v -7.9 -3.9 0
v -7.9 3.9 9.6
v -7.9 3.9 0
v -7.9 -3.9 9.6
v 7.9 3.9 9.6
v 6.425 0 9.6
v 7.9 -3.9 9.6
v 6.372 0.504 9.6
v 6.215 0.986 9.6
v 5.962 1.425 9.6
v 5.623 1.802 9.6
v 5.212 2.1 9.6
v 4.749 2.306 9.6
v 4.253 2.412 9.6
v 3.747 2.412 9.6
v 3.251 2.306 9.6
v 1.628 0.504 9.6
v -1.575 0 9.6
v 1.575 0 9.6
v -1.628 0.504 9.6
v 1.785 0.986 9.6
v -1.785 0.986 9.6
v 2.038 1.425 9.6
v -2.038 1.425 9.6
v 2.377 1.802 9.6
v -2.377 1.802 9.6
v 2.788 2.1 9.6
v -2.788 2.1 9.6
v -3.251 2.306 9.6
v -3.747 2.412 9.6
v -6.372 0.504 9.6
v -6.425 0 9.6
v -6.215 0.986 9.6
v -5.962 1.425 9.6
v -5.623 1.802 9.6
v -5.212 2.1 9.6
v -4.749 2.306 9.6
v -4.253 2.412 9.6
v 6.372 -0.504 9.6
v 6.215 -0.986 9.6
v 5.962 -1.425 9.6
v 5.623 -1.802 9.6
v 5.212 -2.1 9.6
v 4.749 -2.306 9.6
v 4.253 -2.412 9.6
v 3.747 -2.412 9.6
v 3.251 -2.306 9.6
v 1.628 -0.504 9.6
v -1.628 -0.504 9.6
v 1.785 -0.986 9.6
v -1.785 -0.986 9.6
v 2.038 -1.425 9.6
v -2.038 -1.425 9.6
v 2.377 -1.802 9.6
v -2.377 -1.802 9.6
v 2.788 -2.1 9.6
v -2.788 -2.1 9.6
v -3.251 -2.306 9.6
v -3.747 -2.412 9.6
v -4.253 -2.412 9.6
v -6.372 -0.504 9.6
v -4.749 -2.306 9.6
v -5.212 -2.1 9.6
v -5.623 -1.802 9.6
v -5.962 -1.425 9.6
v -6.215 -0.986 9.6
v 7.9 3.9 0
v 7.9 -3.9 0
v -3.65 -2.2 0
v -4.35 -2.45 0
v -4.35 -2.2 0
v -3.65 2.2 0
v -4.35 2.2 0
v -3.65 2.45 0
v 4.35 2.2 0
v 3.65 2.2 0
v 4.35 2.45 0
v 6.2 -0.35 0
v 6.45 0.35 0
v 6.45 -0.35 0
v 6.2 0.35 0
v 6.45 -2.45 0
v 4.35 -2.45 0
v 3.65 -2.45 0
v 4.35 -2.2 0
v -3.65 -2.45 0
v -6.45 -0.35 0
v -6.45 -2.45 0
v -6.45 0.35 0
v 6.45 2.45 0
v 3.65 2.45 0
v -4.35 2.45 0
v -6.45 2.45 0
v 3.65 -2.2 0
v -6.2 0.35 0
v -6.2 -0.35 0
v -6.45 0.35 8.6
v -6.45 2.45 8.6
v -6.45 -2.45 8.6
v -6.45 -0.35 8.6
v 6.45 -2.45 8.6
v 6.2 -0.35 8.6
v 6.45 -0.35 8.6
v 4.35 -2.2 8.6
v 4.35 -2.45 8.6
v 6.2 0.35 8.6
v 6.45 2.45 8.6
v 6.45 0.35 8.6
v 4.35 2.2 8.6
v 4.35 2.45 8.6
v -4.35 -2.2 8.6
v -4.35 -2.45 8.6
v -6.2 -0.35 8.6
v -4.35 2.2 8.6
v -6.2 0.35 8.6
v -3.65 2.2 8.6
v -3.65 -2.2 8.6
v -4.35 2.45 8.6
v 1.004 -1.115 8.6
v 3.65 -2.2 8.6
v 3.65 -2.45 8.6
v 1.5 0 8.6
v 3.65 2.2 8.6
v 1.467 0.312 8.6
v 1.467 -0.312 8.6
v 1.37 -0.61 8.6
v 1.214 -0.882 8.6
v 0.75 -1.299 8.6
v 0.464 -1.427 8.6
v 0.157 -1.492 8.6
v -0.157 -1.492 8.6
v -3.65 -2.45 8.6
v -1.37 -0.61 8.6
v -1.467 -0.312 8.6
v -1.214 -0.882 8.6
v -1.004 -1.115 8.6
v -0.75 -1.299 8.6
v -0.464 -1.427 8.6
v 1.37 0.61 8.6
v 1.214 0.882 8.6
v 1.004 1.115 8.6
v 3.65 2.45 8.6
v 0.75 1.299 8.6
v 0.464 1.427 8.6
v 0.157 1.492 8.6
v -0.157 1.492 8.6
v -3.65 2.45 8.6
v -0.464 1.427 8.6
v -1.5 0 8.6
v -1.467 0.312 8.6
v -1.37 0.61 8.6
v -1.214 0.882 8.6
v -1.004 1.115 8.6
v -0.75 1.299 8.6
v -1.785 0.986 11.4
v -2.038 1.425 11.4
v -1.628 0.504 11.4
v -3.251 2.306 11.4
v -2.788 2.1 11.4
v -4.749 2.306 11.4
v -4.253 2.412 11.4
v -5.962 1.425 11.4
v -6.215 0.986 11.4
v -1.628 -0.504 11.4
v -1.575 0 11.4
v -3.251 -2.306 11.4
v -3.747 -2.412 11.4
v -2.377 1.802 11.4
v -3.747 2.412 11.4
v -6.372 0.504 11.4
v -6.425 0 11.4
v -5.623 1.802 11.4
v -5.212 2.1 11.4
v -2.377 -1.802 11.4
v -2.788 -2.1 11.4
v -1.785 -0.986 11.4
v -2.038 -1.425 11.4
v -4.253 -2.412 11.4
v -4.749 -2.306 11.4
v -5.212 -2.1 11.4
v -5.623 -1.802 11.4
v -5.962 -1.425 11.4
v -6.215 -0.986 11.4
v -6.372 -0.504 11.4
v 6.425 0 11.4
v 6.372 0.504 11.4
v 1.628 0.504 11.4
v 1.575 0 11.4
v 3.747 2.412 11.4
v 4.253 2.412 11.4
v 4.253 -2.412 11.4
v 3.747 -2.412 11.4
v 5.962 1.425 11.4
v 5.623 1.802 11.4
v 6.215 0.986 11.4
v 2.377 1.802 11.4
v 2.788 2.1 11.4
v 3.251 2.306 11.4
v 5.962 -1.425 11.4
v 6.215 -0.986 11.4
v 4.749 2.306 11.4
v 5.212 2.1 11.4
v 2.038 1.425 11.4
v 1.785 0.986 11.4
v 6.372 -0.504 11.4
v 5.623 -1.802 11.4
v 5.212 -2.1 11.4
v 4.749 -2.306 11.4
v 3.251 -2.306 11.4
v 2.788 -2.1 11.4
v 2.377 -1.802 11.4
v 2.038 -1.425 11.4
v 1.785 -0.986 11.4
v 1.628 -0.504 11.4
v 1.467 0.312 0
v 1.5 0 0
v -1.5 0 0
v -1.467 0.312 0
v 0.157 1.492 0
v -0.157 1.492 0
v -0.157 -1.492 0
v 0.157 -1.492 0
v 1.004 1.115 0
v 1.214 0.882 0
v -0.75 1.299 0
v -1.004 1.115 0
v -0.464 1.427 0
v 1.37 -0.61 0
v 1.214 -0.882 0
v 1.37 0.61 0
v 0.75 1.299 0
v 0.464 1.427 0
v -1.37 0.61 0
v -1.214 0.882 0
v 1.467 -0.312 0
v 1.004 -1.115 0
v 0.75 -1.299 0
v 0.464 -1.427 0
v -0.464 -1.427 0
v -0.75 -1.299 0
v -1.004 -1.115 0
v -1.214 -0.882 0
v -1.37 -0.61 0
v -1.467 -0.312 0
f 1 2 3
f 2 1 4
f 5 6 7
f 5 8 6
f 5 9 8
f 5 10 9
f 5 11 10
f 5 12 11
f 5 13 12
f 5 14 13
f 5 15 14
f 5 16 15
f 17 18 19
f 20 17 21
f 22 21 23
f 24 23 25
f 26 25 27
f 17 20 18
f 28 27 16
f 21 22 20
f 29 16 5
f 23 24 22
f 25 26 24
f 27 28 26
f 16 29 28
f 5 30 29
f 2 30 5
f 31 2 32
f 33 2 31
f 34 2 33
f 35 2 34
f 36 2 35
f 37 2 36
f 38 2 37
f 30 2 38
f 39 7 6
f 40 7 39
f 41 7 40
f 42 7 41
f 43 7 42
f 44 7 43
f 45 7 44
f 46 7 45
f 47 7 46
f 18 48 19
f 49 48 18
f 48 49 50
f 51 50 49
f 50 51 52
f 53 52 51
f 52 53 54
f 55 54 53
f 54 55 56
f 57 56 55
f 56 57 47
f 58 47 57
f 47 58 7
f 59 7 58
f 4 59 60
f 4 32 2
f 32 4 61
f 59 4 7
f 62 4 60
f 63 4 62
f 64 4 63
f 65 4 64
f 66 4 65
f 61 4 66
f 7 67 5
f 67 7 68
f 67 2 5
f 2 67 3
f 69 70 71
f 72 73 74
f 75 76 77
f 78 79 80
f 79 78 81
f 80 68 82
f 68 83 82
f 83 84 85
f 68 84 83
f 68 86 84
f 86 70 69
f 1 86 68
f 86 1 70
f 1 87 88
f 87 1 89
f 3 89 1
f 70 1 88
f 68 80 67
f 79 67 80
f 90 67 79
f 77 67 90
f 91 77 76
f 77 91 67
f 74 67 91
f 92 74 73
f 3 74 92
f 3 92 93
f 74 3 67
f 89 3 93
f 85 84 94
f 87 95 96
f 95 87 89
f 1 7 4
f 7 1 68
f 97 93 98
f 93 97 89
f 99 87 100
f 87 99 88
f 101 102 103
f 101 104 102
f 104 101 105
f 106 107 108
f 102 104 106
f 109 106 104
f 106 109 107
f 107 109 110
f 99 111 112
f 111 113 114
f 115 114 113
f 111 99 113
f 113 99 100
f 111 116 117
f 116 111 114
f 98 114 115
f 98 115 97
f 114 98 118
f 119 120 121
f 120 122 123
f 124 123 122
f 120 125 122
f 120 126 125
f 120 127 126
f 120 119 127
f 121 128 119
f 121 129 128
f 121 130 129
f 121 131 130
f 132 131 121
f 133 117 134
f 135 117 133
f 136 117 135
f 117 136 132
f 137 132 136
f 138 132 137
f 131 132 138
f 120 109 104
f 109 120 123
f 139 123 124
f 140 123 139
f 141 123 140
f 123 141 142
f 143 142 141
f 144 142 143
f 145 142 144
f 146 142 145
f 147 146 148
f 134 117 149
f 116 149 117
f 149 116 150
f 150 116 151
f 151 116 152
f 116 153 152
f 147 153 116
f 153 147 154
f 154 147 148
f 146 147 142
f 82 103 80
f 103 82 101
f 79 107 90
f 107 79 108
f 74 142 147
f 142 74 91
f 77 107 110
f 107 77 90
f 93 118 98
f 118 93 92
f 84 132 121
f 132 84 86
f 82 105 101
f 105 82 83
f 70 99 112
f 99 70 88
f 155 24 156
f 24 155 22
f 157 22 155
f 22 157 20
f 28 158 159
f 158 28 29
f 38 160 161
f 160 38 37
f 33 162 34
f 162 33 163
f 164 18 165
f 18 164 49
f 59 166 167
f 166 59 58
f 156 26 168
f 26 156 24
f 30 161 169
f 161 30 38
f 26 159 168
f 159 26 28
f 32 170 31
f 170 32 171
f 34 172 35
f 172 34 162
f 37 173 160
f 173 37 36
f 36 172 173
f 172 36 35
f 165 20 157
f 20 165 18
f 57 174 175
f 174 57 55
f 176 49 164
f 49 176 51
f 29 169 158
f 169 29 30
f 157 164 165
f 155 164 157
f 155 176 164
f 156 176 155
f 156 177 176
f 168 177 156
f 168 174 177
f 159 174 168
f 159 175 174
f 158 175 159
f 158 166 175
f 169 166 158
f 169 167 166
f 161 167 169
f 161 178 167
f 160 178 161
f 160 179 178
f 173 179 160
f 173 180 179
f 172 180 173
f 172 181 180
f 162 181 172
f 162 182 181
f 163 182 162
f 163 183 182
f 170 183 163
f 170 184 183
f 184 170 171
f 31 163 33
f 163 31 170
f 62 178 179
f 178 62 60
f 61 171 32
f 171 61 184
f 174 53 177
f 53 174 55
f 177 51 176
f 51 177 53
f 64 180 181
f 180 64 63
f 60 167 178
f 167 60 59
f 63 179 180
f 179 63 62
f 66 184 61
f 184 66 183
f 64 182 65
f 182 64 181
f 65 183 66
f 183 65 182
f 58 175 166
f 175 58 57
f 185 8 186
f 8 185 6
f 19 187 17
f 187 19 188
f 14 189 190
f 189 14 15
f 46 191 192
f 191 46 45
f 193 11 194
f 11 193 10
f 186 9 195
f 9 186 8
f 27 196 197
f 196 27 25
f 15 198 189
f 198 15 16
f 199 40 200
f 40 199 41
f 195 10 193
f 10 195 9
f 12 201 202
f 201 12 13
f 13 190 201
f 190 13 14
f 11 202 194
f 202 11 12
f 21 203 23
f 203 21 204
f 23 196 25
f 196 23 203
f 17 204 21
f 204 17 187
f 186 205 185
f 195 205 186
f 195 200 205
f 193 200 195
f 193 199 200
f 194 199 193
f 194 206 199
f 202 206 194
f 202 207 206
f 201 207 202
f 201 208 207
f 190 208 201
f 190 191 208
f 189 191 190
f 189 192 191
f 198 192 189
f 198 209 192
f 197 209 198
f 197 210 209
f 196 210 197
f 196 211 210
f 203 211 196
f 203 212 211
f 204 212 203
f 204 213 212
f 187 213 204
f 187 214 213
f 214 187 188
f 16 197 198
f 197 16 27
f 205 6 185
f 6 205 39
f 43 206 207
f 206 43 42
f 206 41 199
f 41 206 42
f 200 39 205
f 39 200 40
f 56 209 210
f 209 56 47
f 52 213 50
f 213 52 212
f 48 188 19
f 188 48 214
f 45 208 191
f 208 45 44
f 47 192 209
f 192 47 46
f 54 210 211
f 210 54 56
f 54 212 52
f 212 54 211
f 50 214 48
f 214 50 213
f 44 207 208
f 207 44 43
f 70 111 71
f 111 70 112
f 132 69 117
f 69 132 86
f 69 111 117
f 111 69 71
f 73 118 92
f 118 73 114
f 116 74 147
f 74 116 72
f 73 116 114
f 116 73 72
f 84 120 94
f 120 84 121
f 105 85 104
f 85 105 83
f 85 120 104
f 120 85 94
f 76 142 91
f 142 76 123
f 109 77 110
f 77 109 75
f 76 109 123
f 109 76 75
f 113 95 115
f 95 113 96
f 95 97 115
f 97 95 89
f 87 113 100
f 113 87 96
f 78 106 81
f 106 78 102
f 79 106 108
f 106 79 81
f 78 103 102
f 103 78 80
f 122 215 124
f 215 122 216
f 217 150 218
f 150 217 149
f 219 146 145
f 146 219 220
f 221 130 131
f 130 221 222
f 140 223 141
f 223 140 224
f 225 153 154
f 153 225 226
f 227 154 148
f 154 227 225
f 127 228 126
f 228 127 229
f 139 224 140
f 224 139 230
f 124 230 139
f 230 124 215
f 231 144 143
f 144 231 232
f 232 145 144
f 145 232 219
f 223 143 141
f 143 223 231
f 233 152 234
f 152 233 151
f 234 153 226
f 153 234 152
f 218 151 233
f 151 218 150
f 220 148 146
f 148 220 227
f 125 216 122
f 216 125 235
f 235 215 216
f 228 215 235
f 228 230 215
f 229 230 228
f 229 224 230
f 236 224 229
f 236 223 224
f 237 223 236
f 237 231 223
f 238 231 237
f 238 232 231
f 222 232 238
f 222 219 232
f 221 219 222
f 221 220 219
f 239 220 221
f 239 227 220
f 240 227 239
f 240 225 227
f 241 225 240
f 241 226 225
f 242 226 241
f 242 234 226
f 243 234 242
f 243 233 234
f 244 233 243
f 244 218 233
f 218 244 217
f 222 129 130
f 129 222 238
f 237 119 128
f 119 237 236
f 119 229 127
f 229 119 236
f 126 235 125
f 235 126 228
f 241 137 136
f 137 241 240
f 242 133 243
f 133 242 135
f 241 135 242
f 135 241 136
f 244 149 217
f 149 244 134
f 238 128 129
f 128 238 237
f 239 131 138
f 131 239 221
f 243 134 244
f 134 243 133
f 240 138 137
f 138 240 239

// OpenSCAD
/**
 * Derived from http://www.thingiverse.com/thing:5699
 *
 * LEGO®, the LEGO® logo, the Brick, DUPLO®, and MINDSTORMS® are trademarks of the LEGO® Group. ©2012 The LEGO® Group.
 */

/* [General] */

// Width of the block, in studs
block_width = 1;

// Length of the block, in studs
block_length = 2;

// Height of the block. A ratio of "1" is a standard LEGO brick height; a ratio of "1/3" is a standard LEGO plate height; "1/2" is a standard DUPLO plate.
block_height_ratio = 1; // [.33333333333:1/3, .5:1/2, 1:1, 2:2, 3:3, 4:4, 5:5, 6:6, 7:7, 8:8, 9:9, 10:10]

// What type of block should this be? For type-specific options, see the "Wings," "Slopes," "Curves", and "Baseplates" tabs.
block_type = "brick"; // [brick:Brick, tile:Tile, wing:Wing, slope:Slope, curve:Curve, baseplate:Baseplate]

// What brand of block should this be? LEGO for regular LEGO bricks, Duplo for the toddler-focused larger bricks.
block_brand = "lego"; // [lego:LEGO, duplo:DUPLO]

// What stud type do you want? Hollow studs allow rods to be pushed into the stud.
stud_type = "solid"; // [solid:Solid, hollow:Hollow]

// Should the block include round horizontal holes like the Technics LEGO bricks have?
technic_holes = "no"; // [no:No, yes:Yes]

// Should the block include vertical cross-shaped axle holes?
vertical_axle_holes = "no"; // [no:No, yes:Yes]

/* [Wings] */

// What type of wing? Full is suitable for the front of a plane, left/right are for the left/right of a plane.
wing_type = "full"; // [full:Full, left:Left, right:Right]

// The number of studs across the end of the wing. If block_width is odd, this needs to be odd, and the same for even.
wing_end_width = 2;

// The length of the rectangular portion of the wing, in studs.
wing_base_length = 3;

// Should the wing edges be notched to accept studs below?
wing_stud_notches = "yes"; // [yes:Yes, no:No]

/* [Slopes] */

// How many rows of studs should be left before the slope?
slope_stud_rows = 1;

// How much vertical height should be left at the end of the slope? e.g, a value of zero means the slope reaches the bottom of the block. A value of 1 means that for a block with height 2, the slope reaches halfway down the block.
slope_end_height = 0;

/* [Curves] */

// How many rows of studs should be left before the curve?
curve_stud_rows = 5;

// Should the curve be convex or concave?
curve_type = "concave"; // [concave:Concave, convex:Convex]

// How much vertical height should be left at the end of the curve? e.g, a value of zero means the curve reaches the bottom of the block. A value of 1 means that for a block with height 2, the curve reaches halfway down the block.
curve_end_height = 0;

/* [Baseplates] */

// If you want a roadway, how wide should it be (in studs)? A roadway is a smooth (non-studded) section of a baseplate.
roadway_width = 0;

// How long should the roadway be?
roadway_length = 0;

// Where should the roadway start (x-value)? A value of zero puts the roadway at the far left side of the plate.
roadway_x = 0;

// Where should the roadway start (y-value)? A value of zero puts the roadway at the front of the plate.
roadway_y = 0;

/* [SNOT] */

// SNOT means Studs Not On Top -- bricks with alternative stud configurations.
// Put studs on the top and buttom?
dual_sided = "no"; // [no:No, yes:Yes]

// Instead of both sides having studs, both sides can have no studs.
dual_bottom = "no"; // [no:No, yes:Yes]

/* [Printer-Specific] */

// Should extra reinforcement be included to make printing on an FDM printer easier? Ignored for tiles, since they're printed upside-down and don't need the reinforcement. Recommended for block heights less than 1 or for Duplo bricks. 
use_reinforcement = "no"; // [no:No, yes:Yes]

// If your printer prints the blocks correctly except for the stud diameter, use this variable to resize just the studs for your printer. A value of 1.05 will print the studs 105% wider than standard.
stud_rescale = 1;
//stud_rescale = 1.0475 * 1; // Orion Delta, T-Glase
//stud_rescale = 1.022 * 1; // Orion Delta, ABS

// Print tiles upside down.
translate([0, 0, (block_type == "tile" ? block_height_ratio * block_height : 0)]) rotate([0, (block_type == "tile" ? 180 : 0), 0]) {
    block(
        width=block_width,
        length=block_length,
        height=block_height_ratio,
        type=block_type,
        brand=block_brand,
        stud_type=stud_type,
        horizontal_holes=(technic_holes=="yes"),
        vertical_axle_holes=(vertical_axle_holes=="yes"),
        reinforcement=(use_reinforcement=="yes"),
        wing_type=wing_type,
        wing_end_width=wing_end_width,
        wing_base_length=wing_base_length,
        stud_notches=(wing_stud_notches=="yes"),
        slope_stud_rows=slope_stud_rows,
        slope_end_height=slope_end_height,
        curve_stud_rows=curve_stud_rows,
        curve_type=curve_type,
        curve_end_height=curve_end_height,
        roadway_width=roadway_width,
        roadway_length=roadway_length,
        roadway_x=roadway_x,
        roadway_y=roadway_y,
        stud_rescale=stud_rescale,
        dual_sided=(dual_sided=="yes"),
        dual_bottom=(dual_bottom=="yes")
    );
}

module block(
    width=1,
    length=2,
    height=1,
    type="brick",
    brand="lego",
    stud_type="solid",
    horizontal_holes=false,
    vertical_axle_holes=false,
    reinforcement=false,
    wing_type="full",
    wing_end_width=2,
    wing_base_length=2,
    stud_notches=false,
    slope_stud_rows=1,
    slope_end_height=0,
    curve_stud_rows=1,
    curve_type="concave",
    curve_end_height=0,
    roadway_width=0,
    roadway_length=0,
    roadway_x=0,
    roadway_y=0,
    stud_rescale=1,
    dual_sided=false,
    dual_bottom=false
    ) {
    post_wall_thickness = (brand == "lego" ? 0.85 : 1);
    wall_thickness=(brand == "lego" ? 1.45 : 1.5);
    stud_diameter=(brand == "lego" ? 4.85 : 9.35);
    hollow_stud_inner_diameter = (brand == "lego" ? 3.1 : 6.7);
    stud_height=(brand == "lego" ? 1.8 : 4.4);
    stud_spacing=(brand == "lego" ? 8 : 8 * 2);
    block_height=(brand == "lego" ? (type == "baseplate" ? 1.3 : 9.6) : 9.6 * 2);
    pin_diameter=(brand == "lego" ? 3 : 3 * 2);
    post_diameter=(brand == "lego" ? 6.5 : 13.2);
    cylinder_precision=(brand == "lego" ? 0.1 : 0.05);
    reinforcing_width = (brand == "lego" ? 0.7 : 1);

    spline_length = (brand == "lego" ? 0.25 : 1.7);
    spline_thickness = (brand == "lego" ? 0.7 : 1.3);

    horizontal_hole_diameter = (brand == "lego" ? 4.8 : 4.8 * 2);
    horizontal_hole_z_offset = (brand == "lego" ? 5.8 : 5.8 * 2);
    horizontal_hole_bevel_diameter = (brand == "lego" ? 6.2 : 6.2 * 2);
    horizontal_hole_bevel_depth = (brand == "lego" ? 0.9 : 0.9 * 1.5 / 1.2 );

    roof_thickness = (type == "baseplate" || dual_sided ? block_height * height : 1 * 1);

    // Brand-independent measurements.
    axle_spline_width = 2.0;
    axle_diameter = 5 * 1;
    wall_play = 0.1 * 1;
    horizontal_hole_wall_thickness = 1 * 1;

    // Ensure that width is always less than or equal to length.
    real_width = (type == "wing" ? width : min(width, length) );
    real_length = (type == "wing" ? length : max(width, length) );
    real_height = max((type == "baseplate" ? 1 : 1/3), height);

    // Ensure that the wing end width is even if the width is even, odd if odd, and a reasonable value.
    real_wing_end_width = (wing_type == "full"
        ?
        min(real_width - 2, ((real_width % 2 == 0) ? 
            (max(2, (
                wing_end_width % 2 == 0 ?
                (wing_end_width)
                :
                (wing_end_width-1)
            )))
            :
            (max(1, (
                wing_end_width % 2 == 0 ?
                (wing_end_width-1)
                :
                (wing_end_width)
            )))
        ))
        :
        (min(real_width-1, max(1, wing_end_width))) // Half-wing
    );

    // Ensure that the base length is a reasonable value.
    real_wing_base_length = min(real_length-1, max(1, wing_base_length)) + 1; // +1 because the angle starts before the last stud.
        
    // Validate all the rest of the arguments.
    real_slope_end_height = max(0, min(real_height - 1/3, slope_end_height));
    real_slope_stud_rows = min(real_length - 1, slope_stud_rows);
    real_curve_stud_rows = max(0, curve_stud_rows);
    real_curve_type = (curve_type == "convex" ? "convex" : "concave");
    real_curve_end_height = max(0, min(real_height - 1/3, curve_end_height));
    real_horizontal_holes = horizontal_holes && ((type == "baseplate" && real_height >= 8) || real_height >= 1) && !dual_sided;
    real_vertical_axle_holes = vertical_axle_holes && real_width > 1;
    real_reinforcement = reinforcement && type != "baseplate" && type != "tile" && !dual_sided;

    real_roadway_width = max(0, min(roadway_width, real_width));
    real_roadway_length = max(0, min(roadway_length, real_length));
    real_roadway_x = max(0, min(real_length - real_roadway_length, roadway_x));
    real_roadway_y = max(0, min(real_width - real_roadway_width, roadway_y));

    real_stud_notches = stud_notches && !dual_sided;
    real_dual_sided = dual_sided && type != "curve" && type != "slope" && type != "tile";
    real_dual_bottom = dual_bottom && !real_dual_sided && type != "curve" && type != "slope";

    total_studs_width = (stud_diameter * stud_rescale * real_width) + ((real_width - 1) * (stud_spacing - (stud_diameter * stud_rescale)));
    total_studs_length = (stud_diameter * stud_rescale * real_length) + ((real_length - 1) * (stud_spacing - (stud_diameter * stud_rescale)));

    total_posts_width = (post_diameter * (real_width - 1)) + ((real_width - 2) * (stud_spacing - post_diameter));
    total_posts_length = (post_diameter * (real_length - 1)) + ((real_length - 2) * (stud_spacing - post_diameter));

    total_axles_width = (axle_diameter * (real_width - 1)) + ((real_width - 2) * (stud_spacing - axle_diameter));
    total_axles_length = (axle_diameter * (real_length - 1)) + ((real_length - 2) * (stud_spacing - axle_diameter));

    total_pins_width = (pin_diameter * (real_width - 1)) + max(0, ((real_width - 2) * (stud_spacing - pin_diameter)));
    total_pins_length = (pin_diameter * (real_length - 1)) + max(0, ((real_length - 2) * (stud_spacing - pin_diameter)));

    overall_length = (real_length * stud_spacing) - (2 * wall_play);
    overall_width = (real_width * stud_spacing) - (2 * wall_play);

    wing_slope = (wing_type == "full" ?
        ((real_width - (real_wing_end_width + 1)) / 2) / (real_length - (real_wing_base_length - 1))
        :
        (real_width - (real_wing_end_width)) / (real_length - (real_wing_base_length - 1))
    );

   translate([-overall_length/2, -overall_width/2, 0]) // Comment to position at 0,0,0 instead of centered on X and Y.
        union() {
            difference() {
                union() {
                    /**
                     * Include any union()s that should come before the final difference()s.
                     */
                    
                    // The mass of the block.
                    difference() {
                        cube([overall_length, overall_width, real_height * block_height]);
                        translate([wall_thickness,wall_thickness,-roof_thickness]) cube([overall_length-wall_thickness*2,overall_width-wall_thickness*2,block_height*real_height]);
                    }

                    // The studs on top of the block (if it's not a tile).
                    if ( type != "tile" && !real_dual_bottom ) {
                        translate([stud_diameter * stud_rescale / 2, stud_diameter * stud_rescale / 2, 0]) 
                        translate([(overall_length - total_studs_length)/2, (overall_width - total_studs_width)/2, 0]) {
                            for (ycount=[0:real_width-1]) {
                                for (xcount=[0:real_length-1]) {
                                    if (!skip_this_stud(xcount, ycount)) {
                                        translate([xcount*stud_spacing,ycount*stud_spacing,block_height*real_height]) stud();
                                    }
                                }
                            }
                       }
                    }

                    // Interior splines to catch the studs.
                    translate([stud_spacing / 2 - wall_play - (spline_thickness/2), 0, 0]) for (xcount = [0:real_length-1]) {
                        translate([0,wall_thickness,0]) translate([xcount * stud_spacing, 0, 0]) cube([spline_thickness, spline_length, real_height * block_height]);
                        translate([xcount * stud_spacing, overall_width - wall_thickness -  spline_length, 0]) cube([spline_thickness, spline_length, real_height * block_height]);
                    }

                    translate([0, stud_spacing / 2 - wall_play - (spline_thickness/2), 0]) for (ycount = [0:real_width-1]) {
                        translate([wall_thickness,0,0]) translate([0, ycount * stud_spacing, 0]) cube([spline_length, spline_thickness, real_height * block_height]);
                        translate([overall_length - wall_thickness -  spline_length, ycount * stud_spacing, 0]) cube([spline_length, spline_thickness, real_height * block_height]);
                    }

                    if (type != "baseplate" && real_width > 1 && real_length > 1 && !real_dual_sided && roof_thickness < block_height * height) {
                        // Reinforcements and posts
                        translate([post_diameter / 2, post_diameter / 2, 0]) {
                            translate([(overall_length - total_posts_length)/2, (overall_width - total_posts_width)/2, 0]) {
                                union() {
                                    // Posts
                                    for (ycount=[1:real_width-1]) {
                                        for (xcount=[1:real_length-1]) {
                                            translate([(xcount-1)*stud_spacing,(ycount-1)*stud_spacing,0]) post(real_vertical_axle_holes && !skip_this_vertical_axle_hole(xcount, ycount));
                                        }
                                    }

                                    // Reinforcements
                                    if (real_reinforcement) {
                                        difference() {
                                            for (ycount=[1:real_width-1]) {
                                                for (xcount=[1:real_length-1]) {
                                                    translate([(xcount-1)*stud_spacing,(ycount-1)*stud_spacing,0]) reinforcement();
                                                }
                                            }

                                            for (ycount=[1:real_width-1]) {
                                                for (xcount=[1:real_length-1]) {
                                                    translate([(xcount-1)*stud_spacing,(ycount-1)*stud_spacing,-0.5]) cylinder(r=post_diameter/2-0.1, h=real_height*block_height+0.5, $fs=cylinder_precision);
                                                }
                                            }
                                        }
                                    }
                                }
                            }
                        }
                    }

                    if (type != "baseplate" && (real_width == 1 || real_length == 1) && real_width != real_length && !real_dual_sided && roof_thickness < block_height * height) {
                        // Pins
                        if (real_width == 1) {
                            translate([(pin_diameter/2) + (overall_length - total_pins_length) / 2, overall_width/2, 0]) {
                                for (xcount=[1:real_length-1]) {
                                    translate([(xcount-1)*stud_spacing,0,0]) cylinder(r=pin_diameter/2,h=block_height*real_height,$fs=cylinder_precision);
                                }
                            }
                        }
                        else {
                            translate([overall_length/2, (pin_diameter/2) + (overall_width - total_pins_width) / 2, 0]) {
                                for (ycount=[1:real_width-1]) {
                                    translate([0,(ycount-1)*stud_spacing,0]) cylinder(r=pin_diameter/2,h=block_height*real_height,$fs=cylinder_precision);
                                }
                            }
                        }
                    }

                    if (real_horizontal_holes) {
                        // The holes for the horizontal axles.
                        // 1-length bricks have the hole underneath the stud.
                        // >1-length bricks have the holes between the studs.
                        for (height_index = [0 : height - 1]) {
                            translate([horizontal_holes_x_offset(), overall_width, height_index * block_height]) 
                            translate([(overall_length - total_studs_length)/2, 0, 0]) {
                            for (axle_hole_index=[horizontal_hole_start_index() : horizontal_hole_end_index()]) {
                                if (!skip_this_horizontal_hole(axle_hole_index, height_index)) {
                                        translate([axle_hole_index*stud_spacing,0,horizontal_hole_z_offset]) rotate([90, 0, 0])  cylinder(r=horizontal_hole_diameter/2 + horizontal_hole_wall_thickness, h=overall_width,$fs=cylinder_precision);
                                    }
                                }
                            }
                        }
                    }
                }

                
                /**
                 * Include any differences from the basic brick here.
                 */
                
                if (real_vertical_axle_holes) {
                    if (real_width > 1 && real_length > 1) {
                        translate([axle_diameter / 2, axle_diameter / 2, 0]) {
                            translate([(overall_length - total_axles_length)/2, (overall_width - total_axles_width)/2, 0]) {
                                for (ycount = [ 1 : real_width - 1 ]) {
                                    for (xcount = [ 1 : real_length - 1]) {
                                        if (!skip_this_vertical_axle_hole(xcount, ycount)) {
                                            translate([(xcount-1)*stud_spacing,(ycount-1)*stud_spacing,-block_height/2]) axle();
                                        }
                                    }
                                }
                            }
                        }
                    }
                }

                if (type == "wing") {
                    if (wing_type == "full" || wing_type == "right")  {
                        translate([0, 0, -0.5]) linear_extrude(block_height * real_height + stud_height + 1) polygon(points=[
                            [stud_spacing * (real_wing_base_length-1), -0.01],
                            [overall_length + 0.01, -0.01],
                            [overall_length + 0.01, (wing_type == "full" ?
                                (overall_width / 2 - (real_wing_end_width * stud_spacing / 2))
                                :
                                (overall_width - (real_wing_end_width * stud_spacing))
                            )]
                        ]
                        );
                    }
                    if (wing_type == "full" || wing_type == "left")  {
                        translate([0, 0, -0.5]) linear_extrude(block_height * real_height + stud_height + 1) polygon(points=[
                            [stud_spacing * (real_wing_base_length-1), overall_width + 0.01],
                            [overall_length + 0.01, overall_width + 0.01],
                            [overall_length + 0.01, (wing_type == "full" ? overall_width / 2 : 0) + (real_wing_end_width * stud_spacing / (wing_type == "full" ? 2 : 1))]
                        ]
                        );


                    }
                }
                else if (type == "slope") {
                    translate([0, overall_width+0.5, 0]) rotate([90, 0, 0]) linear_extrude(overall_width+1) polygon(points=[
                        [-0.1, (block_height * real_slope_end_height) + stud_height],
                        [min(overall_length, overall_length - (stud_spacing * real_slope_stud_rows) + (wall_play/2)), real_height * block_height - roof_thickness],
                        [min(overall_length, overall_length - (stud_spacing * real_slope_stud_rows) + (wall_play/2)), real_height * block_height + stud_height + 1],
                        [-0.1, real_height * block_height + stud_height + 1]
                    ]);
                }
                else if (type == "curve") {
                    if (real_curve_type == "concave") {
                                            echo(curve_circle_height());
                        difference() {
                            translate([
                                    -curve_circle_length() / 2, // Align the center of the cube with the end of the block.
                                    -0.5, // Center the extra width on the block.
                                    (real_height * block_height) - (curve_circle_height() / 2)  // Align the bottom of the cube with the center of the curve circle.
                                ])
                                cube([curve_circle_length(), overall_width + 1, curve_circle_height()]);

                            translate([
                                    curve_circle_length() / 2,  // Align the end of the curve with the end of the block.
                                    overall_width / 2, // Center it on the block.
                                    (real_height * block_height) - (curve_circle_height() / 2)  // Align the top of the curve with the top of the block.
                                ])
                                rotate([90, 0, 0]) // Rotate sideways
                                translate([0, 0, -overall_width/2]) // Move so the cylinder is z-centered.
                                resize([curve_circle_length(), curve_circle_height(), 0]) // Resize to the approprate scale.
                                cylinder(r=real_height * block_height, h=overall_width, $fs=cylinder_precision);
                        }
                    }
                    else if (real_curve_type == "convex") {
                        union() {
                            translate([0, 0, real_height * block_height]) cube([overall_length - (real_curve_stud_rows * stud_spacing), overall_width, stud_height + .1]);
                            translate([0, 0, block_height * real_height])
                                translate([0, (overall_width+1)/2-.5, 0]) // Center across the end of the block.
                                rotate([90, 0, 0])
                                translate([0, 0, -((overall_width+1)/2)]) // z-center
                                resize([curve_circle_length(), curve_circle_height(), 0]) // Resize to the final dimensions.
                                cylinder(r=block_height * real_height, h=overall_width+1, $fs=cylinder_precision);
                        }
                    }
                }
                else if (type == "baseplate") {
                    // Rounded corners.
                    union() {
                        translate([overall_length, overall_width, 0]) translate([-((stud_spacing / 2) - wall_play), -((stud_spacing / 2) - wall_play), 0]) negative_rounded_corner(r=((stud_spacing / 2) - wall_play), h=real_height * block_height);
                        
                        translate([0, overall_width, 0]) translate([((stud_spacing / 2) - wall_play), -((stud_spacing / 2) - wall_play), 0]) rotate([0, 0, 90]) negative_rounded_corner(r=((stud_spacing / 2) - wall_play), h=real_height * block_height);
                        translate([((stud_spacing / 2) - wall_play), ((stud_spacing / 2) - wall_play), 0]) rotate([0, 0, 180]) negative_rounded_corner(r=((stud_spacing / 2) - wall_play), h=real_height * block_height);
                        translate([overall_length, 0, 0]) translate([-((stud_spacing / 2) - wall_play), ((stud_spacing / 2) - wall_play), 0]) rotate([0, 0, 270]) negative_rounded_corner(r=((stud_spacing / 2) - wall_play), h=real_height * block_height);
                    }
                }

                if (real_horizontal_holes) {
                    // The holes for the horizontal axles.
                    // 1-length bricks have the hole underneath the stud.
                    // >1-length bricks have the holes between the studs.
                    for (height_index = [0 : height - 1]) {
                        translate([horizontal_holes_x_offset(), 0, height_index * block_height]) 
                        translate([(overall_length - total_studs_length)/2, 0, 0]) {
                            for (axle_hole_index=[horizontal_hole_start_index() : horizontal_hole_end_index()]) {
                                if (!skip_this_horizontal_hole(axle_hole_index, height_index)) {
                                    union() {
                                        translate([axle_hole_index*stud_spacing,overall_width,horizontal_hole_z_offset]) rotate([90, 0, 0])  cylinder(r=horizontal_hole_diameter/2, h=overall_width,$fs=cylinder_precision);
    
                                        // Bevels. The +/- 0.1 measurements are here just for nicer previews in OpenSCAD, and could be removed.
                                        translate([axle_hole_index*stud_spacing,horizontal_hole_bevel_depth-0.1,horizontal_hole_z_offset]) rotate([90, 0, 0]) cylinder(r=horizontal_hole_bevel_diameter/2, h=horizontal_hole_bevel_depth+0.1,$fs=cylinder_precision);
                                        translate([axle_hole_index*stud_spacing,overall_width+0.1,horizontal_hole_z_offset]) rotate([90, 0, 0]) cylinder(r=horizontal_hole_bevel_diameter/2, h=horizontal_hole_bevel_depth+0.1,$fs=cylinder_precision);
                                    }
                                }
                            }
                        }
                    }
                }
            }

            
            /**
             * Any final union()s for the brick.
             */
            
            if (type == "wing") {
                difference() {
                    union() {
                        if ( wing_type == "full" || wing_type == "right" ){
                            linear_extrude(block_height * real_height) polygon(points=[
                                [stud_spacing * (real_wing_base_length-1), 0],
                                [overall_length, (wing_type == "full" ? 
                                    ((overall_width / 2) - (real_wing_end_width * stud_spacing / 2))
                                    :
                                    (overall_width - (real_wing_end_width * stud_spacing))
                                )],
                                [overall_length, (wing_type == "full" ? 
                                    ((overall_width / 2) - (real_wing_end_width * stud_spacing / 2))
                                    :
                                    (overall_width - (real_wing_end_width * stud_spacing))
                                ) + wall_thickness],
                                [stud_spacing * (real_wing_base_length-1), wall_thickness]
                            ]);
                        }

                        if (wing_type == "full" || wing_type == "left") {
                            linear_extrude(block_height * real_height) polygon(points=[
                                [stud_spacing * (real_wing_base_length-1), overall_width],
                                [overall_length, (wing_type == "full" ? overall_width / 2 : 0) + (real_wing_end_width * stud_spacing / (wing_type == "full" ? 2 : 1))],
                                [overall_length, (wing_type == "full" ? overall_width / 2 : 0) + (real_wing_end_width * stud_spacing / (wing_type == "full" ? 2 : 1)) - wall_thickness],
                                [stud_spacing * (real_wing_base_length-1), overall_width - wall_thickness]
                            ]);
                        }
                    }

                    if (real_stud_notches) {
                        translate([overall_length/2, overall_width/2, 0])
                            translate([0, 0, -(1/3 * block_height)]) block(
                                width=real_width,
                                length=real_length,
                                height=1/3,
                                brand=brand,
                                stud_type="solid",
                                type="brick",
                                stud_rescale=1.5
                            );
                    }
                }
            }
            else if (type == "slope") {
                translate([0, overall_width, 0]) rotate([90, 0, 0]) linear_extrude(overall_width) polygon(points=[
                    [0, (block_height * real_slope_end_height) + stud_height],
                    [0, (block_height * real_slope_end_height) + stud_height + roof_thickness],
                    [min(overall_length, overall_length - (stud_spacing * real_slope_stud_rows) + (wall_play/2)), real_height * block_height],
                    [min(overall_length, overall_length - (stud_spacing * real_slope_stud_rows) + (wall_play/2)), (real_height * block_height) - roof_thickness]
                ]);
            }
            else if (type == "curve") {
                if (real_curve_type == "concave") {
                    intersection() {
                        translate([
                                -curve_circle_length() / 2, // Align the center of the cube with the end of the block.
                                -0.5, // Center the extra width on the block.
                                (real_height * block_height) - (curve_circle_height() / 2)  // Align the bottom of the cube with the center of the curve circle.
                            ])
                            cube([curve_circle_length(), overall_width + 1, curve_circle_height()]);

                        difference() {   
                            translate([
                                    curve_circle_length() / 2,  // Align the end of the curve with the end of the block.
                                    overall_width / 2, // Center it on the block.
                                    (real_height * block_height) - (curve_circle_height() / 2)  // Align the top of the curve with the top of the block.
                                ])
                                rotate([90, 0, 0]) // Rotate sideways
                                translate([0, 0, -overall_width/2]) // Move so the cylinder is z-centered.
                                resize([curve_circle_length(), curve_circle_height(), 0]) // Resize to the approprate scale.
                                cylinder(r=real_height * block_height, h=overall_width, $fs=cylinder_precision);

                            translate([
                                    curve_circle_length() / 2,  // Align the end of the curve with the end of the block.
                                    overall_width / 2, // Center it on the block.
                                    (real_height * block_height) - (curve_circle_height() / 2) // Align the top of the curve with the top of the block.
                                ])
                                rotate([90, 0, 0]) // Rotate sideways
                                translate([0, 0, -overall_width/2]) // Move so the cylinder is z-centered.
                                resize([curve_circle_length() - (wall_thickness * 2), curve_circle_height() - (wall_thickness * 2), 0]) // Resize to the approprate scale.
                                cylinder(r=real_height * block_height, h=overall_width, $fs=cylinder_precision);
                        }
                    }
                }
                else if (real_curve_type == "convex") {
                    intersection() {
                        translate([
                            0,
                            0,
                            (real_height * block_height) - (curve_circle_height() / 2) - wall_thickness // Align the top of the cube with the top of the block.
                        ])
                            cube([curve_circle_length() / 2, overall_width, curve_circle_height() / 2 + wall_thickness]);

                       translate([0, 0, block_height * real_height])
                            translate([0, overall_width/2, 0]) // Center across the end of the block.
                            rotate([90, 0, 0])
                            translate([0, 0, -overall_width/2]) // z-center
                            difference() {
                                resize([curve_circle_length() + (wall_thickness * 2), curve_circle_height() + (wall_thickness * 2), 0]) // Resize to the final dimensions.
                                cylinder(r=block_height * real_height, h=overall_width, $fs=cylinder_precision);

                                translate([0, 0, -0.5]) // The inner cylinder is just a little taller, for nicer OpenSCAD previews.
                                    resize([curve_circle_length(), curve_circle_height(), 0]) // Resize to the final dimensions.
                                    cylinder(r=block_height * real_height, h=overall_width+1, $fs=cylinder_precision);
                            }
                    }
                }
            }
            
            if (real_dual_sided) {
                translate([overall_length/2, overall_width/2, block_height * height]) mirror([0,0,1]) block(
                    width=real_width,
                    length=real_length,
                    height=real_height,
                    type=type,
                    brand=brand,
                    stud_type=stud_type,
                    horizontal_holes=real_horizontal_holes,
                    vertical_axle_holes=real_vertical_axle_holes,
                    reinforcement=real_reinforcement,
                    wing_type=wing_type,
                    wing_end_width=real_wing_end_width,
                    wing_base_length=real_wing_base_length-1,
                    stud_notches=real_stud_notches,
                    slope_stud_rows=real_slope_stud_rows,
                    slope_end_height=real_slope_end_height,
                    curve_stud_rows=real_curve_stud_rows,
                    curve_type=real_curve_type,
                    curve_end_height=real_curve_end_height,
                    roadway_width=real_roadway_width,
                    roadway_length=real_roadway_length,
                    roadway_x=real_roadway_x,
                    roadway_y=real_roadway_y,
                    stud_rescale=stud_rescale,
                    dual_sided=false
                );
            }

            if (real_dual_bottom) {
                translate([overall_length/2, overall_width/2, block_height * height * 2]) mirror([0,0,1]) block(
                    width=real_width,
                    length=real_length,
                    height=real_height,
                    type="tile",
                    brand=brand,
                    stud_type=stud_type,
                    horizontal_holes=real_horizontal_holes,
                    vertical_axle_holes=real_vertical_axle_holes,
                    reinforcement=real_reinforcement,
                    wing_type=wing_type,
                    wing_end_width=real_wing_end_width,
                    wing_base_length=real_wing_base_length-1,
                    stud_notches=real_stud_notches,
                    slope_stud_rows=real_slope_stud_rows,
                    slope_end_height=real_slope_end_height,
                    curve_stud_rows=real_curve_stud_rows,
                    curve_type=real_curve_type,
                    curve_end_height=real_curve_end_height,
                    roadway_width=real_roadway_width,
                    roadway_length=real_roadway_length,
                    roadway_x=real_roadway_x,
                    roadway_y=real_roadway_y,
                    stud_rescale=stud_rescale,
                    dual_sided=false,
                    dual_bottom=false
                );
            }
    }

    module post(vertical_axle_hole) {
        difference() {
            cylinder(r=post_diameter/2, h=real_height*block_height,$fs=cylinder_precision);
            if (vertical_axle_hole==true) {
                translate([0,0,-block_height/2])
                    axle();
            } else {
                translate([0,0,-0.5]) cylinder(r=(post_diameter/2)-post_wall_thickness, h=real_height*block_height+1,$fs=cylinder_precision);
            }
        }
    }

    module reinforcement() {
        union() {
            translate([0,0,real_height*block_height/2]) union() {
                cube([reinforcing_width, 2 * (stud_spacing - (2 * wall_play)), real_height * block_height],center=true);
                rotate(v=[0,0,1],a=90) cube([reinforcing_width, 2 * (stud_spacing - (2 * wall_play)), real_height * block_height], center=true);
            }
        }
    }

    module axle() {
        translate([0,0,(real_height+1)*block_height/2]) union() {
            cube([axle_diameter,axle_spline_width,(real_height+1)*block_height],center=true);
            cube([axle_spline_width,axle_diameter,(real_height+1)*block_height],center=true);
        }
    }

    module stud() {
        difference() {
            cylinder(r=(stud_diameter*stud_rescale)/2,h=stud_height,$fs=cylinder_precision);

            if (stud_type == "hollow") {
                // 0.5 is for cleaner preview; doesn't affect functionality.
                cylinder(r=(hollow_stud_inner_diameter*stud_rescale)/2,h=stud_height+0.5,$fs=cylinder_precision);
            }
        }
    }

    function curve_circle_length() = (overall_length - (stud_spacing * min(real_length - 1, real_curve_stud_rows)) + (wall_play/2)) * 2;
    function curve_circle_height() = (
            (
                (block_height * real_height) - (real_curve_end_height * block_height)) * 2) - (real_curve_type == "convex" ? (stud_height * 2) + (wall_thickness * 2) : 0);

    function wing_width(x_pos) = (real_width - width_loss(x_pos));

    function width_loss(x_pos) = (type != "wing" ? 0 :
        round((wing_type == "full" ?
            max(0, (2 * wing_slope * (x_pos - (real_wing_base_length - 1)))) + 0.3 // Full wing
            :
            max(0, (wing_slope * (x_pos - (real_wing_base_length - 1)))) + 0.2 // Half wing
        )) // +extra is because full studs can still fit on partially missing bases, but not by much
    );

    function horizontal_hole_start_index() = (
        (
            (type == "slope" && real_slope_stud_rows == 1)
            || (type == "curve" && real_curve_stud_rows == 1)
        )
        ?
        real_length - 1
        :
        0
    );
    function horizontal_hole_end_index() = (
        (
            real_length == 1
            || (type == "slope" && real_slope_stud_rows == 1)
            || (type == "curve" && real_curve_stud_rows == 1)
        )
        ?
        real_length - 1
        :
        real_length - 2
    );
    function skip_this_horizontal_hole(xcount, zcount) = (
        (type == "slope" && ((zcount >= slope_end_height) && (xcount <= real_length - real_slope_stud_rows - 1)))
        ||
        (type == "curve" && ((zcount >= curve_end_height) && (xcount <= real_length - real_curve_stud_rows - 1)))
    );

    function horizontal_holes_x_offset() = (
        (horizontal_hole_diameter / 2)
        + (
            (
                real_length == 1
                || (type == "slope" && real_slope_stud_rows == 1)
                || (type == "curve" && real_curve_stud_rows == 1)
            )
            ?
            0
            :
            (stud_spacing / 2)
        )
    );
    
    function put_stud_here(xcount, ycount) = (
        (type != "wing" && real_roadway_width > 0 && real_roadway_length > 0)
        ||
        (type == "wing" && (
            (wing_type == "full" && (ycount+1 > ceil(width_loss(xcount+1)/2)) && (ycount+1 <= floor(real_width - (width_loss(xcount+1)/2))))
            || (wing_type == "left" && ycount+1 <= wing_width(xcount+1))
            || (wing_type == "right" && ycount >= width_loss(xcount+1))
            )
        )
        ||
        (real_roadway_width == 0 && real_roadway_length == 0)
        ||
        (!pos_in_roadway(xcount, ycount))
    );
    
    function put_vertical_axle_hole_here(xcount, ycount) = (
        !skip_this_axle_hole(xcount, ycount)
    );
    
    function skip_this_vertical_axle_hole(xcount, ycount) = (
        (type == "slope" && xcount < (real_length - real_slope_stud_rows + 1))
        ||
        (type == "curve" && xcount < (real_length - real_curve_stud_rows + 1))
        
    );
    
    function skip_this_stud(xcount, ycount) = (
        (type == "wing" && (
            (wing_type == "full" && ((ycount+1 <= ceil(width_loss(xcount+1)/2)) || (ycount+1 > floor(real_width - (width_loss(xcount+1)/2)))))
            || (wing_type == "left" && ycount+1 > wing_width(xcount+1))
            || (wing_type == "right" && ycount < width_loss(xcount+1))
            )
        )
        ||
        (real_roadway_width > 0 && real_roadway_length > 0 && pos_in_roadway(xcount, ycount))
    );

    function pos_in_roadway(x, y) = (
        x >= real_roadway_x
        && y >= real_roadway_y
        && y < real_roadway_y + real_roadway_width
        && x < real_roadway_x + real_roadway_length
    );
        
    
    module negative_rounded_corner(r,h) {
        difference() {
            translate([0, 0, -.5]) cube([r+1, r+1, h+1]);
            translate([0, 0, -1]) cylinder(r=r, h=h + 2, $fs=cylinder_precision);
        }
    }
}

module uncenter(width, length, height) {
    // stud_spacing = 8
    // wall_play = 0.1
    translate([((8 * length) / 2) - 0.1, ((8 * width) / 2) - 0.1, height ? ((8 * height) / 2) - 0.1 : 0]) children();
}

module place(x, y, z=0) {
    translate([8 * y, 8 * x, z * 9.6]) children();
}
